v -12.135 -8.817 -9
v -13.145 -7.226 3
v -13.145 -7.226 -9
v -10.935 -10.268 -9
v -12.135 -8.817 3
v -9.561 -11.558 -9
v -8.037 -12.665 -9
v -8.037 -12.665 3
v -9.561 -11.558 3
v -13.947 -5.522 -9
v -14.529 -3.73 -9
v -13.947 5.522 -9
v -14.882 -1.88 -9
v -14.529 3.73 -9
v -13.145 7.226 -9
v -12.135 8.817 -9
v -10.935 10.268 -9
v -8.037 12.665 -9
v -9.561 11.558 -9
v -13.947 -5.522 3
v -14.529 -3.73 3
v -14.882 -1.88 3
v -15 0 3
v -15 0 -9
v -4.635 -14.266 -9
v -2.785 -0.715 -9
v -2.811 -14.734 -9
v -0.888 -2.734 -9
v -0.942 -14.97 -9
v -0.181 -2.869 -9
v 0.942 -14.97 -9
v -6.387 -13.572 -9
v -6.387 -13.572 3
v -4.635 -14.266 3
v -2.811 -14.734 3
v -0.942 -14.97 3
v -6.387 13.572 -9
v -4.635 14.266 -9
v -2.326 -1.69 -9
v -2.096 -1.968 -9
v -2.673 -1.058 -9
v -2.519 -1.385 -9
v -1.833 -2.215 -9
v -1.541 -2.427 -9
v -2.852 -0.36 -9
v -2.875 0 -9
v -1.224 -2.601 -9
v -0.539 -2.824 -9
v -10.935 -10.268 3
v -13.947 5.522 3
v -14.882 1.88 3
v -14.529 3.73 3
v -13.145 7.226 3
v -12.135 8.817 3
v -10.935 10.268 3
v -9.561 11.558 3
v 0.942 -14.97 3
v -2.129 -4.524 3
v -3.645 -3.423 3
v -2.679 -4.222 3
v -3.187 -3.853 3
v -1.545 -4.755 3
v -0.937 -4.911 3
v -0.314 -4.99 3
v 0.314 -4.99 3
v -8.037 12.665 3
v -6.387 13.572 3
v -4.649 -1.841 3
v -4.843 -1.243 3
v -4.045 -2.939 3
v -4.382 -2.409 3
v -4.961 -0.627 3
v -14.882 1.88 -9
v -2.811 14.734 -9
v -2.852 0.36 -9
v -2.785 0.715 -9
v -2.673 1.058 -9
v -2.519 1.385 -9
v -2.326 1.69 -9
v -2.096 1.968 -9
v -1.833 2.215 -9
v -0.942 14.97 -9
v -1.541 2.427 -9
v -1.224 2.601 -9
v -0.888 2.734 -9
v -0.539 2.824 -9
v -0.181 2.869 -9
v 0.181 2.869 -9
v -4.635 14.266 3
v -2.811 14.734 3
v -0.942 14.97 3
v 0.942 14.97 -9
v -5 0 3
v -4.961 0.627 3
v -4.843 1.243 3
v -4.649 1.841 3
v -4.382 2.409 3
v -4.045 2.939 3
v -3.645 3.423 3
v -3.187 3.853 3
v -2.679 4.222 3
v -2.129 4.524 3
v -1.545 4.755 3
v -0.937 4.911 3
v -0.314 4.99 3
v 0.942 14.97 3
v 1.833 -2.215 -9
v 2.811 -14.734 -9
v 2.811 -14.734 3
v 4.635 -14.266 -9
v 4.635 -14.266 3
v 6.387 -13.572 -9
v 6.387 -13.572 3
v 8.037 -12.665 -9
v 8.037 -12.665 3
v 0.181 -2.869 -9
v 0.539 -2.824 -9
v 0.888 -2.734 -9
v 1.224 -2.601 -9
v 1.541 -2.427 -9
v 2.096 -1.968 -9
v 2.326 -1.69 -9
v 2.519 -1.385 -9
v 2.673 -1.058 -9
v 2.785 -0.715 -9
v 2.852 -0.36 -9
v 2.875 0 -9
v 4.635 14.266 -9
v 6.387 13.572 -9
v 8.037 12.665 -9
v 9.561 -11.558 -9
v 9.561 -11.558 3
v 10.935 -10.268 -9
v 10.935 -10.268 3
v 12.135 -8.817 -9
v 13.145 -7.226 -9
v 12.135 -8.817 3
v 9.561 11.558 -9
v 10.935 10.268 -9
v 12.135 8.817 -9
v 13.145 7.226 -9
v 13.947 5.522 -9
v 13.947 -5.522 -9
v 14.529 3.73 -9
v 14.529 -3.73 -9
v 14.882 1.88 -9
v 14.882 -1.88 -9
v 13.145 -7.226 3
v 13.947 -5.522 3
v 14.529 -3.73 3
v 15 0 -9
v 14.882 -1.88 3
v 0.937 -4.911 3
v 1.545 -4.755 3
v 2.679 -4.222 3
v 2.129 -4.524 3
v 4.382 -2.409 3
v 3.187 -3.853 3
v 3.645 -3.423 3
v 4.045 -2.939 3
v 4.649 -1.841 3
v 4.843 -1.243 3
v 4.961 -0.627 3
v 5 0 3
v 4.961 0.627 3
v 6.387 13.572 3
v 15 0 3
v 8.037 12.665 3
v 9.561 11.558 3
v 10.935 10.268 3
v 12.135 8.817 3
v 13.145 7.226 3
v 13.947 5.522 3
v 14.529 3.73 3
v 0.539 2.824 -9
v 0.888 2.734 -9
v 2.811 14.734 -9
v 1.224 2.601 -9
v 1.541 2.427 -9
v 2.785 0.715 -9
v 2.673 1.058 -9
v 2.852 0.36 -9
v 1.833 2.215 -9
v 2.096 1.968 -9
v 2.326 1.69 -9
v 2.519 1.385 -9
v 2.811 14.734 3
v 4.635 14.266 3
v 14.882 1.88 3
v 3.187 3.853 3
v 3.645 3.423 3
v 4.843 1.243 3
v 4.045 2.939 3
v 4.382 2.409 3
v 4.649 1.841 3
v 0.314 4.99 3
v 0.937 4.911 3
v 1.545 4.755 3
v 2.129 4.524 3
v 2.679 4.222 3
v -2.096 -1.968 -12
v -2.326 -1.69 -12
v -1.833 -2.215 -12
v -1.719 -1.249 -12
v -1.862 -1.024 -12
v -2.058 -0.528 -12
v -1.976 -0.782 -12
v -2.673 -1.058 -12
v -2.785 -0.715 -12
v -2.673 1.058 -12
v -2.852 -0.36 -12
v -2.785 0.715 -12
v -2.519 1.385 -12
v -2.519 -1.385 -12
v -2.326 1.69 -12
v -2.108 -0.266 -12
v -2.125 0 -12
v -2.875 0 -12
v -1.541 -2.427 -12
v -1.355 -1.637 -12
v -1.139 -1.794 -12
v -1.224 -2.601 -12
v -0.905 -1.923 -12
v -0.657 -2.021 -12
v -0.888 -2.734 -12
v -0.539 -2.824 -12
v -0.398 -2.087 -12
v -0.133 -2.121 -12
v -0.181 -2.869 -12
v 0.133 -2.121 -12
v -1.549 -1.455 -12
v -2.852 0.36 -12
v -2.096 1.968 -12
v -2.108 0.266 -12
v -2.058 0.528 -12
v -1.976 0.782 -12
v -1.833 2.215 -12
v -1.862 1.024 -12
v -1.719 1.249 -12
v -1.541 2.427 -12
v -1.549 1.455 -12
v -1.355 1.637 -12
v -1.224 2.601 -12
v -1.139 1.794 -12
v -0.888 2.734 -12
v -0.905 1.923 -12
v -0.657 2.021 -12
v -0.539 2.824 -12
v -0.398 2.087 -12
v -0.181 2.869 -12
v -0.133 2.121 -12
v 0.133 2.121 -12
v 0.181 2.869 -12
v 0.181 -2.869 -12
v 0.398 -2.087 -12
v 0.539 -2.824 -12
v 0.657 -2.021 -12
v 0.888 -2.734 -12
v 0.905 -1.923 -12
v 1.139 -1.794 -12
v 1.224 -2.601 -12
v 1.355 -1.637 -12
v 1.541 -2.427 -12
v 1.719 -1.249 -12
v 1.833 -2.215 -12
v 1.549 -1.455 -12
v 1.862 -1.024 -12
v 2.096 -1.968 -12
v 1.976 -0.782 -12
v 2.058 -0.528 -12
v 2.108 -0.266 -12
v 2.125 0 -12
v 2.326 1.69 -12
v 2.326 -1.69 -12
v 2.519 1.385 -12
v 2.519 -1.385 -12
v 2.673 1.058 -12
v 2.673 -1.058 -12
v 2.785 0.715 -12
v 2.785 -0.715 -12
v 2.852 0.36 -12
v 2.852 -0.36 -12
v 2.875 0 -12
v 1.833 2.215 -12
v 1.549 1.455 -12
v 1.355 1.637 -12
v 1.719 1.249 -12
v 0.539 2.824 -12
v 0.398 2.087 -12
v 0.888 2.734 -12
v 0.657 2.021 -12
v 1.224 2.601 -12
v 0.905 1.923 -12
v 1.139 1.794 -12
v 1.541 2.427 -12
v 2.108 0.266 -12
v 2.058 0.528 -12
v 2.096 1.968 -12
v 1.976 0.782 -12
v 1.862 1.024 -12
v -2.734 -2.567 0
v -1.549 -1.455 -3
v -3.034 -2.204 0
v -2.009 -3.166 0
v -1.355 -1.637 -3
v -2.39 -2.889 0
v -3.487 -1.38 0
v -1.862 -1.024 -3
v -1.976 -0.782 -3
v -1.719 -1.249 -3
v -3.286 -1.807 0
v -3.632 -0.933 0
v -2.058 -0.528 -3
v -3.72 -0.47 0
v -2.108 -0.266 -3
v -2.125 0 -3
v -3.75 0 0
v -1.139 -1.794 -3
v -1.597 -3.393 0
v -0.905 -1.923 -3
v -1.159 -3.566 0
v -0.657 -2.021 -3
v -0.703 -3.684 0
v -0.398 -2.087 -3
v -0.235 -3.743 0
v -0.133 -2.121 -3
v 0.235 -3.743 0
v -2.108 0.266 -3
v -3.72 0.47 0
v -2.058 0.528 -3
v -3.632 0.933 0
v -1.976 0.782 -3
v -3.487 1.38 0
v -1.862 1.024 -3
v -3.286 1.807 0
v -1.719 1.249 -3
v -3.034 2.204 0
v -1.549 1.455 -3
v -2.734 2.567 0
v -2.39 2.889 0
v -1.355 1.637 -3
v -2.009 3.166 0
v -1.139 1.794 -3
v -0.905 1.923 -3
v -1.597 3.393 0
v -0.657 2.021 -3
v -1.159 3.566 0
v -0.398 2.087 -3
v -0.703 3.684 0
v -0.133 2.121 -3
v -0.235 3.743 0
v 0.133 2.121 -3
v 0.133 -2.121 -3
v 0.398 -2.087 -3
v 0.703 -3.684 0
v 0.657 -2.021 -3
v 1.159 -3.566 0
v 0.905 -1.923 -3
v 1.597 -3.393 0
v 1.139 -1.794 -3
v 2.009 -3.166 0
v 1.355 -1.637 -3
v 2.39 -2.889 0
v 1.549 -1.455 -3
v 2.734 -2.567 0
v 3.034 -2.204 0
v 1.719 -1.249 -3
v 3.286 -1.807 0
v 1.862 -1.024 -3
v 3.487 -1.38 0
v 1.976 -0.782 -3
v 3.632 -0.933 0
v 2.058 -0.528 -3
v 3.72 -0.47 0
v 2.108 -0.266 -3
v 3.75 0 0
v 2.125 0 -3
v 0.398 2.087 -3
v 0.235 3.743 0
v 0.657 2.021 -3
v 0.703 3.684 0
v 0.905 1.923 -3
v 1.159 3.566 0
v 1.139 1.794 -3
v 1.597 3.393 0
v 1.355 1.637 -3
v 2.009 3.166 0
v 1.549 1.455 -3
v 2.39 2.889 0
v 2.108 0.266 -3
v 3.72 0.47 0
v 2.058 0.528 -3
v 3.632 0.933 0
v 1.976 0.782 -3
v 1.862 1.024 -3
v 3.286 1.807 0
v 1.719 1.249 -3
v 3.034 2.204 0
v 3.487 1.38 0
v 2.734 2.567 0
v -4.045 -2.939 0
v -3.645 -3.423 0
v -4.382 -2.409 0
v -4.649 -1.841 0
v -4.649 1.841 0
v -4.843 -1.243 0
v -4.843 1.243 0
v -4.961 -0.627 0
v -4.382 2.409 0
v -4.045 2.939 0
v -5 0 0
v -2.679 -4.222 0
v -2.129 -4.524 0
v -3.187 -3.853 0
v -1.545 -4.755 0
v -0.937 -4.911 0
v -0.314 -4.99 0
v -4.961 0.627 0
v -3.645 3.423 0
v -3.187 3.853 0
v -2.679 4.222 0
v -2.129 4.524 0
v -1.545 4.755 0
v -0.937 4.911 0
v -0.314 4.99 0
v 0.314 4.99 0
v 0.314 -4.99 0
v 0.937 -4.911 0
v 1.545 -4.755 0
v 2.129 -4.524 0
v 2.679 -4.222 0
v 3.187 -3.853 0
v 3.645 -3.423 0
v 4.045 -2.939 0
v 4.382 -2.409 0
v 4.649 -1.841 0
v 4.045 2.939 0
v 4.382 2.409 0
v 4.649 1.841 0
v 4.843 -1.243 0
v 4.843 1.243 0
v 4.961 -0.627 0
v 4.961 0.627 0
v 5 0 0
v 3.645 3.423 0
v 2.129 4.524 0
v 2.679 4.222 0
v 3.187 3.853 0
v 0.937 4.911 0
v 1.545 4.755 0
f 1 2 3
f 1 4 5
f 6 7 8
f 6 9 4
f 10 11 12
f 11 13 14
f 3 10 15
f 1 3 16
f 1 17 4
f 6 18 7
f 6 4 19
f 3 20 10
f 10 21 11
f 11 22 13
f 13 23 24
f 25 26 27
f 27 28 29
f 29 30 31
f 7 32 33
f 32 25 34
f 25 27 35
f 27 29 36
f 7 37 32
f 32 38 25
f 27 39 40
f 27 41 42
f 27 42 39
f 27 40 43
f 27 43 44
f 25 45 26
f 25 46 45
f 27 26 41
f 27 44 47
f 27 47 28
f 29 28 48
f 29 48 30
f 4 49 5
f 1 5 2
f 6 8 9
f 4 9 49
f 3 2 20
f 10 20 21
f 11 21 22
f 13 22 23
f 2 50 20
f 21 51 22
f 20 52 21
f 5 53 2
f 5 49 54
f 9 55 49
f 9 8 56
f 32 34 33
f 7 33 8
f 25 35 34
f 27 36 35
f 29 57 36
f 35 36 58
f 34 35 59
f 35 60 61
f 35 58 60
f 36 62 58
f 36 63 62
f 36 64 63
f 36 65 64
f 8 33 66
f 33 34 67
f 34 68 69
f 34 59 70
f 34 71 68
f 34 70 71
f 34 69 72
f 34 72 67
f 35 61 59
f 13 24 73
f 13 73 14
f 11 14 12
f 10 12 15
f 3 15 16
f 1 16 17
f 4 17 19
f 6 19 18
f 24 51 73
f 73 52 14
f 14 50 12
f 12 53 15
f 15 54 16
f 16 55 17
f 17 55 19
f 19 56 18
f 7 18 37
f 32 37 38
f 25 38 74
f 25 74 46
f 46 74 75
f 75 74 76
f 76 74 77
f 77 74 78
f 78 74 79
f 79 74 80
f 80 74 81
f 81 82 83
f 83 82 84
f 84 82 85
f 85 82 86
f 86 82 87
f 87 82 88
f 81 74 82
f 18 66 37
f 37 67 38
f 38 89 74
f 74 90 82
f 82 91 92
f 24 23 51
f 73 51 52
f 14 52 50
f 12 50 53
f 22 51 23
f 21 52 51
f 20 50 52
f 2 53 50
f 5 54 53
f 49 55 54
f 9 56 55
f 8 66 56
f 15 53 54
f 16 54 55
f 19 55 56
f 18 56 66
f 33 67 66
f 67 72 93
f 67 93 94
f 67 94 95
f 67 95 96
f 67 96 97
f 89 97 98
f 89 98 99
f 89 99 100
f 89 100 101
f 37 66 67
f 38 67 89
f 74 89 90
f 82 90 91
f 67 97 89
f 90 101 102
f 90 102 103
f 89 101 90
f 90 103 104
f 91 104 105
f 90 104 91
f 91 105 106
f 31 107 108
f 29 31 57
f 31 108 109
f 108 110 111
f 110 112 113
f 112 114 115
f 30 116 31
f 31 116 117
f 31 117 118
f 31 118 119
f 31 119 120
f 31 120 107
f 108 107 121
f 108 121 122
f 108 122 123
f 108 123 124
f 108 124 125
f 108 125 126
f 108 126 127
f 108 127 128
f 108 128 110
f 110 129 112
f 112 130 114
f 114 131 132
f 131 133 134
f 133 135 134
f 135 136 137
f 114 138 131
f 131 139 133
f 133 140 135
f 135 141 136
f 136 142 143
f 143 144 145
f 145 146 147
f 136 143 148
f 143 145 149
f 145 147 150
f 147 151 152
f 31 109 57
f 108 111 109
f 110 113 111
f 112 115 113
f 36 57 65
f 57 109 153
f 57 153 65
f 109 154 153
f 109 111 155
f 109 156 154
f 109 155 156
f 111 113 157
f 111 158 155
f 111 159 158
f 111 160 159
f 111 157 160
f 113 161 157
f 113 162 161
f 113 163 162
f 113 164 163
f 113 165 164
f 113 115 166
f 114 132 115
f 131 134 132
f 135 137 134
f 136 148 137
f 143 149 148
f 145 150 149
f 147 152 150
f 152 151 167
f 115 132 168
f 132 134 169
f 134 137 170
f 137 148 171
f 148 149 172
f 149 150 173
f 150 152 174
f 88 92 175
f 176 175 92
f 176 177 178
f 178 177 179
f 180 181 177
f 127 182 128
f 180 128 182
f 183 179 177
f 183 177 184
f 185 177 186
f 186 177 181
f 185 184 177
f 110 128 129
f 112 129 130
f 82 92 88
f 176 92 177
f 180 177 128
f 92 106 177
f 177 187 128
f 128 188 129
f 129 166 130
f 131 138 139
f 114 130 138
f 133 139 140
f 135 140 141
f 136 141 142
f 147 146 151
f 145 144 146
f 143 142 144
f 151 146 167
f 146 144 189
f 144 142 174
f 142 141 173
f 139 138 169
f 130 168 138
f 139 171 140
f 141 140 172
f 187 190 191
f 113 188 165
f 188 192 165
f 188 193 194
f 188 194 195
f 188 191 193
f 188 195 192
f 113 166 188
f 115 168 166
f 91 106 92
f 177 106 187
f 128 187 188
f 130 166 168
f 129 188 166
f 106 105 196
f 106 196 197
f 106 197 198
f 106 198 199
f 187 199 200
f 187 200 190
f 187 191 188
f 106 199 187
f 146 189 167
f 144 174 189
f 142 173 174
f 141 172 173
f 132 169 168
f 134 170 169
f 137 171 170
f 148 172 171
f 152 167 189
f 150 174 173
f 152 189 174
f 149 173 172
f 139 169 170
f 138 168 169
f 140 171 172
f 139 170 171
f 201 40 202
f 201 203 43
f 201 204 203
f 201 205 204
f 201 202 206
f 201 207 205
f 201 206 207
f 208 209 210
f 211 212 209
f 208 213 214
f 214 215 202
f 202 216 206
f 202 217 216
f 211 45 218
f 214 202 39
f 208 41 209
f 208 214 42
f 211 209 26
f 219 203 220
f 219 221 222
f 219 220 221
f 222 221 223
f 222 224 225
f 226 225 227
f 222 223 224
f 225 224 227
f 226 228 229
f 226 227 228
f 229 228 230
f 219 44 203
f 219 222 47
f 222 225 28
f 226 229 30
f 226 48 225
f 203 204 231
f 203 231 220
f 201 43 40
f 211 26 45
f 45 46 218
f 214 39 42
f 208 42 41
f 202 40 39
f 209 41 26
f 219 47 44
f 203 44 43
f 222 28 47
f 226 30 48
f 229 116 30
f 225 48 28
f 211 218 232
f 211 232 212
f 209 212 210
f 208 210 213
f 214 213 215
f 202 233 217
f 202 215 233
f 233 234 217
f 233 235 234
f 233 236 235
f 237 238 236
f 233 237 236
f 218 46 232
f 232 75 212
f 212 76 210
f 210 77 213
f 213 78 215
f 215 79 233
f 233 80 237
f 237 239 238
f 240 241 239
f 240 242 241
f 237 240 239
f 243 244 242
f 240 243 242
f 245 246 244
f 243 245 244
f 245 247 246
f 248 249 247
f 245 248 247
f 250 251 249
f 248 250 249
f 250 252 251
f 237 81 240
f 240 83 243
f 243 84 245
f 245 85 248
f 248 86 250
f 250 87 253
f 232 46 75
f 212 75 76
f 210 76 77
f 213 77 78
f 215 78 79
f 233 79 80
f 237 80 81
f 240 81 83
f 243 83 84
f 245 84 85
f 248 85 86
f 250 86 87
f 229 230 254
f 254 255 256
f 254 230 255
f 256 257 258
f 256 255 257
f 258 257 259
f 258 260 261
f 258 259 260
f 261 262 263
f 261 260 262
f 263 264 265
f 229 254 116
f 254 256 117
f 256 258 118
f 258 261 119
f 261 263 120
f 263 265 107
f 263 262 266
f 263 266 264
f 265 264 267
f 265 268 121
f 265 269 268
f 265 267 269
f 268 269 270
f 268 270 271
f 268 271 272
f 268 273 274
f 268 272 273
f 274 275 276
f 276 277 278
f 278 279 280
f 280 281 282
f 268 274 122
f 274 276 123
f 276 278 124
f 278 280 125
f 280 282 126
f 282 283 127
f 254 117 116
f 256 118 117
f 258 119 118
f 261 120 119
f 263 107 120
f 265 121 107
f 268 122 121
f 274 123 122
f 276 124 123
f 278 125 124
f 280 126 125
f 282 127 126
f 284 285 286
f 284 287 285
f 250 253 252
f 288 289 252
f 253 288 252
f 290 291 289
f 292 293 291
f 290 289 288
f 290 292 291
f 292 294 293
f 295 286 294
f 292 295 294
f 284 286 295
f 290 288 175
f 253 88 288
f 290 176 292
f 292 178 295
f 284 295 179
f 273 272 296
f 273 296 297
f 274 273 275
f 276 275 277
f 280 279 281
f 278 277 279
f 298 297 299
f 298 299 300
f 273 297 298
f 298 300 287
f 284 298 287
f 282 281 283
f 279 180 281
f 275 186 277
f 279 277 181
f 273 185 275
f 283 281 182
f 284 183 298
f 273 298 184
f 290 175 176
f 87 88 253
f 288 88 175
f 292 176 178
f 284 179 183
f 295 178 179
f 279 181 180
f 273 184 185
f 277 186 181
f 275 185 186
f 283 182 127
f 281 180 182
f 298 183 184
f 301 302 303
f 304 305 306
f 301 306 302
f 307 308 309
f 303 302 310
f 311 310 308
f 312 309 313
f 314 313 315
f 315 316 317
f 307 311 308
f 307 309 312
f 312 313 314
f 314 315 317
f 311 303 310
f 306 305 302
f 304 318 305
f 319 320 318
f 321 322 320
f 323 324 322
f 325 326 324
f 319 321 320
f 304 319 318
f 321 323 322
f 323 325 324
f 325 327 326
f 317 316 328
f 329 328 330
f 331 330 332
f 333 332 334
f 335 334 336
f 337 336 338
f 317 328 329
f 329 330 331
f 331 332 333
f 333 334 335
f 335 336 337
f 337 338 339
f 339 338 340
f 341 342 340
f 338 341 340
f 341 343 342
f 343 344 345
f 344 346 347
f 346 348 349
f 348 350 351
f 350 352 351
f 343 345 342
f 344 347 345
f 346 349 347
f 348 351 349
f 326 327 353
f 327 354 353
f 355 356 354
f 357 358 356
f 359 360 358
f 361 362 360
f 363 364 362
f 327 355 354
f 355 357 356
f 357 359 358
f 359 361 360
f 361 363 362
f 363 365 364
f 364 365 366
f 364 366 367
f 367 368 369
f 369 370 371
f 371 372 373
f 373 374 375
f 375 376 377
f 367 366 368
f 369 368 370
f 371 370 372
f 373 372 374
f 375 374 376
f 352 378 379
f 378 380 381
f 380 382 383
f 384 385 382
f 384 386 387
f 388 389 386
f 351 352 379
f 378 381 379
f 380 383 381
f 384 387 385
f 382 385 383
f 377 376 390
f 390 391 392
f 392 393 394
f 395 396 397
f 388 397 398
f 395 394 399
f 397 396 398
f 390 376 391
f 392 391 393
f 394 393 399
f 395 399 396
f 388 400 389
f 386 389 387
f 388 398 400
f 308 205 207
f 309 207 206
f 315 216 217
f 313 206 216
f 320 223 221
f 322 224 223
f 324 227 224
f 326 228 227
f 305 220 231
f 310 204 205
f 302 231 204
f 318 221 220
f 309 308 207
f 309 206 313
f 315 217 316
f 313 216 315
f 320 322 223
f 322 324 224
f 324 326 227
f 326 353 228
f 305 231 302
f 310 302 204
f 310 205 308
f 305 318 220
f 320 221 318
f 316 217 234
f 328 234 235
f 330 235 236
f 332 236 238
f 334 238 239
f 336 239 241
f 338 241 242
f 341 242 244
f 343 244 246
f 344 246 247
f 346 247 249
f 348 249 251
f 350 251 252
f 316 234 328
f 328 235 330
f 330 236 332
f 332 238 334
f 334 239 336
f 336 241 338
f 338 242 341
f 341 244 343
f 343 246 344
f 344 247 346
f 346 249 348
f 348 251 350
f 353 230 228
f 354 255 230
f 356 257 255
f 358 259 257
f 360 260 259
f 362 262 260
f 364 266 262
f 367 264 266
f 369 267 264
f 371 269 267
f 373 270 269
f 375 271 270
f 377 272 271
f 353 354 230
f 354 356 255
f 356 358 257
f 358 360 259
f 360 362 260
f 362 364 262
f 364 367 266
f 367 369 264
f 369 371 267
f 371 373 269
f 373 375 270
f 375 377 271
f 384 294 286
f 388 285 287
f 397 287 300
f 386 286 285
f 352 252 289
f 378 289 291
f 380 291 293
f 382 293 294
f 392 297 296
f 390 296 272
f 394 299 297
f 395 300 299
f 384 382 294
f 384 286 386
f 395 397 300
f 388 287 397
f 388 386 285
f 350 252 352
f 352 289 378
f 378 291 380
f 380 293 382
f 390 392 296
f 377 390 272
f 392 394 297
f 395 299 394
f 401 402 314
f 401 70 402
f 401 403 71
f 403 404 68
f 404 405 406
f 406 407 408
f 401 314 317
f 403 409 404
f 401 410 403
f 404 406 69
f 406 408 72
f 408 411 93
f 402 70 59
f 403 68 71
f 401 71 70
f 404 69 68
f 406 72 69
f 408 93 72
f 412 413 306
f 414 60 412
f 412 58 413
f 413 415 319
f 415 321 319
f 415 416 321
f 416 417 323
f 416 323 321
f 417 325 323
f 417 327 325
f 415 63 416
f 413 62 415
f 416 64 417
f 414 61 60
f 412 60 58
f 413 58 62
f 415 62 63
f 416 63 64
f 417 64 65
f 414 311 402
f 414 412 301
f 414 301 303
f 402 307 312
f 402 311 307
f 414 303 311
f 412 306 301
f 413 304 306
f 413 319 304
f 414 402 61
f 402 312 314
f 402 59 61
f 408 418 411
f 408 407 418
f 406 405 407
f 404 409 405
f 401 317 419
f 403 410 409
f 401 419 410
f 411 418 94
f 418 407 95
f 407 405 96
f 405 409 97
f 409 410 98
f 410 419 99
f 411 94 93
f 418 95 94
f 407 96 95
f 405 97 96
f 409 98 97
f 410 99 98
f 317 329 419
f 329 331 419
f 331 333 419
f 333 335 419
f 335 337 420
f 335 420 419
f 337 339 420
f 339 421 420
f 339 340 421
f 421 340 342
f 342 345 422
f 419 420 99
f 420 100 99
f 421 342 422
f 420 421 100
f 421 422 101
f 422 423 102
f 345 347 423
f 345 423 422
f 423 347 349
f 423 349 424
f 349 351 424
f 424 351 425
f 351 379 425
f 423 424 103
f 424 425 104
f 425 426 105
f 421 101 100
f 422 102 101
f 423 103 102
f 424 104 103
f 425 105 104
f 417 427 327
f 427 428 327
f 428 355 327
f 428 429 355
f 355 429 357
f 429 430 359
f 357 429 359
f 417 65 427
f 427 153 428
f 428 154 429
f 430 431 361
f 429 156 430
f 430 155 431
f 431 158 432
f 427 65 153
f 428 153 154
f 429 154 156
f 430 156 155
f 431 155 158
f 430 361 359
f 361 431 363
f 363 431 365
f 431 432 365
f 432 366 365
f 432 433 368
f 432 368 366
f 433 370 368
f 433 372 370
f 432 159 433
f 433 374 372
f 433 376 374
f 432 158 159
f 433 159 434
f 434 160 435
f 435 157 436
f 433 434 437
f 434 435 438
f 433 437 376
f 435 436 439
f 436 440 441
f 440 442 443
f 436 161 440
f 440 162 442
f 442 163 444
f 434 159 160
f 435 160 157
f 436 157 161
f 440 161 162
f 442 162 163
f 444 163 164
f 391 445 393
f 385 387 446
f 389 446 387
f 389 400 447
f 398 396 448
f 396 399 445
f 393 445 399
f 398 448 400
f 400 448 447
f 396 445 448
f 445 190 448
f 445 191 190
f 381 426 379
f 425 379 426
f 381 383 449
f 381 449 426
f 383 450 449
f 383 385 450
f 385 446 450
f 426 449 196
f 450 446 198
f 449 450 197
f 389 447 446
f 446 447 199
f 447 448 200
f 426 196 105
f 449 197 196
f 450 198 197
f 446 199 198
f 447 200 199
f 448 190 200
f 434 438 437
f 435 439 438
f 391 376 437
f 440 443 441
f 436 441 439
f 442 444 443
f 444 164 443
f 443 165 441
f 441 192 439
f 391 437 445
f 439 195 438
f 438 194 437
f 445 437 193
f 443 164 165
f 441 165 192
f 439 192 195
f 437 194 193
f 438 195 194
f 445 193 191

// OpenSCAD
$fn = 50;


difference() {
	union() {
		translate(v = [0, 0, -9.0000000000]) {
			cylinder(h = 12, r = 15.0000000000);
		}
		#translate(v = [0, 0, -12.0000000000]) {
			cylinder(h = 12, r = 2.8750000000);
		}
	}
	union() {
		translate(v = [0, 0, 0]) {
			rotate(a = [0, 0, 0]) {
				difference() {
					union() {
						translate(v = [0, 0, -12.0000000000]) {
							cylinder(h = 12, r = 2.0000000000);
						}
						translate(v = [0, 0, -3]) {
							cylinder(h = 3, r1 = 2.1250000000, r2 = 3.7500000000);
						}
						translate(v = [0, 0, -12.0000000000]) {
							cylinder(h = 12, r = 2.1250000000);
						}
						translate(v = [0, 0, -12.0000000000]) {
							cylinder(h = 12, r = 2.0000000000);
						}
					}
					union();
				}
			}
		}
		#cylinder(h = 3, r = 5.0000000000);
	}
}
